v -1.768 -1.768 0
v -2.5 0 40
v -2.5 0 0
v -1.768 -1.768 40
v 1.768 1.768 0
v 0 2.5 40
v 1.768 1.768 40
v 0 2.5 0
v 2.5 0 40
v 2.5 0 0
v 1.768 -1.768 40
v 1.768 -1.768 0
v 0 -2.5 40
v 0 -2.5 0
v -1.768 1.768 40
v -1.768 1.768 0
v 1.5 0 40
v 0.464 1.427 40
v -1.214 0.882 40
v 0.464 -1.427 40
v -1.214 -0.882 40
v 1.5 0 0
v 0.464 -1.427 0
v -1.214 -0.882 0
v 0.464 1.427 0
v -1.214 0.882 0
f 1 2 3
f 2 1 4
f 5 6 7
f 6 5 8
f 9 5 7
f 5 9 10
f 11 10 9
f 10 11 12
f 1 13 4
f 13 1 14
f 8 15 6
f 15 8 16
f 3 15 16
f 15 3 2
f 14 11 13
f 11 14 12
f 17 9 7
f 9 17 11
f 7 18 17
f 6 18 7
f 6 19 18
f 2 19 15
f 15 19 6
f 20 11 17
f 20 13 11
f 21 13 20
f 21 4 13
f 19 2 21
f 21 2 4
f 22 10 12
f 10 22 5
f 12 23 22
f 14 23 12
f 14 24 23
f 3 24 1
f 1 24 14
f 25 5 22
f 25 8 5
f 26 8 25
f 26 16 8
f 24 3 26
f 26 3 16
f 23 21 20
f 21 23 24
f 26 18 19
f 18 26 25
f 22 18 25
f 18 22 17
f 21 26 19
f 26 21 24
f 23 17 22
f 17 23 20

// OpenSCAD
// Adapter for holding a knitting needle
module needle_adapter(needle_diameter=3, length=40) {
    difference() {
        cylinder(d=needle_diameter + 2, h=length);
        cylinder(d=needle_diameter, h=length);
    }
}

needle_adapter();
